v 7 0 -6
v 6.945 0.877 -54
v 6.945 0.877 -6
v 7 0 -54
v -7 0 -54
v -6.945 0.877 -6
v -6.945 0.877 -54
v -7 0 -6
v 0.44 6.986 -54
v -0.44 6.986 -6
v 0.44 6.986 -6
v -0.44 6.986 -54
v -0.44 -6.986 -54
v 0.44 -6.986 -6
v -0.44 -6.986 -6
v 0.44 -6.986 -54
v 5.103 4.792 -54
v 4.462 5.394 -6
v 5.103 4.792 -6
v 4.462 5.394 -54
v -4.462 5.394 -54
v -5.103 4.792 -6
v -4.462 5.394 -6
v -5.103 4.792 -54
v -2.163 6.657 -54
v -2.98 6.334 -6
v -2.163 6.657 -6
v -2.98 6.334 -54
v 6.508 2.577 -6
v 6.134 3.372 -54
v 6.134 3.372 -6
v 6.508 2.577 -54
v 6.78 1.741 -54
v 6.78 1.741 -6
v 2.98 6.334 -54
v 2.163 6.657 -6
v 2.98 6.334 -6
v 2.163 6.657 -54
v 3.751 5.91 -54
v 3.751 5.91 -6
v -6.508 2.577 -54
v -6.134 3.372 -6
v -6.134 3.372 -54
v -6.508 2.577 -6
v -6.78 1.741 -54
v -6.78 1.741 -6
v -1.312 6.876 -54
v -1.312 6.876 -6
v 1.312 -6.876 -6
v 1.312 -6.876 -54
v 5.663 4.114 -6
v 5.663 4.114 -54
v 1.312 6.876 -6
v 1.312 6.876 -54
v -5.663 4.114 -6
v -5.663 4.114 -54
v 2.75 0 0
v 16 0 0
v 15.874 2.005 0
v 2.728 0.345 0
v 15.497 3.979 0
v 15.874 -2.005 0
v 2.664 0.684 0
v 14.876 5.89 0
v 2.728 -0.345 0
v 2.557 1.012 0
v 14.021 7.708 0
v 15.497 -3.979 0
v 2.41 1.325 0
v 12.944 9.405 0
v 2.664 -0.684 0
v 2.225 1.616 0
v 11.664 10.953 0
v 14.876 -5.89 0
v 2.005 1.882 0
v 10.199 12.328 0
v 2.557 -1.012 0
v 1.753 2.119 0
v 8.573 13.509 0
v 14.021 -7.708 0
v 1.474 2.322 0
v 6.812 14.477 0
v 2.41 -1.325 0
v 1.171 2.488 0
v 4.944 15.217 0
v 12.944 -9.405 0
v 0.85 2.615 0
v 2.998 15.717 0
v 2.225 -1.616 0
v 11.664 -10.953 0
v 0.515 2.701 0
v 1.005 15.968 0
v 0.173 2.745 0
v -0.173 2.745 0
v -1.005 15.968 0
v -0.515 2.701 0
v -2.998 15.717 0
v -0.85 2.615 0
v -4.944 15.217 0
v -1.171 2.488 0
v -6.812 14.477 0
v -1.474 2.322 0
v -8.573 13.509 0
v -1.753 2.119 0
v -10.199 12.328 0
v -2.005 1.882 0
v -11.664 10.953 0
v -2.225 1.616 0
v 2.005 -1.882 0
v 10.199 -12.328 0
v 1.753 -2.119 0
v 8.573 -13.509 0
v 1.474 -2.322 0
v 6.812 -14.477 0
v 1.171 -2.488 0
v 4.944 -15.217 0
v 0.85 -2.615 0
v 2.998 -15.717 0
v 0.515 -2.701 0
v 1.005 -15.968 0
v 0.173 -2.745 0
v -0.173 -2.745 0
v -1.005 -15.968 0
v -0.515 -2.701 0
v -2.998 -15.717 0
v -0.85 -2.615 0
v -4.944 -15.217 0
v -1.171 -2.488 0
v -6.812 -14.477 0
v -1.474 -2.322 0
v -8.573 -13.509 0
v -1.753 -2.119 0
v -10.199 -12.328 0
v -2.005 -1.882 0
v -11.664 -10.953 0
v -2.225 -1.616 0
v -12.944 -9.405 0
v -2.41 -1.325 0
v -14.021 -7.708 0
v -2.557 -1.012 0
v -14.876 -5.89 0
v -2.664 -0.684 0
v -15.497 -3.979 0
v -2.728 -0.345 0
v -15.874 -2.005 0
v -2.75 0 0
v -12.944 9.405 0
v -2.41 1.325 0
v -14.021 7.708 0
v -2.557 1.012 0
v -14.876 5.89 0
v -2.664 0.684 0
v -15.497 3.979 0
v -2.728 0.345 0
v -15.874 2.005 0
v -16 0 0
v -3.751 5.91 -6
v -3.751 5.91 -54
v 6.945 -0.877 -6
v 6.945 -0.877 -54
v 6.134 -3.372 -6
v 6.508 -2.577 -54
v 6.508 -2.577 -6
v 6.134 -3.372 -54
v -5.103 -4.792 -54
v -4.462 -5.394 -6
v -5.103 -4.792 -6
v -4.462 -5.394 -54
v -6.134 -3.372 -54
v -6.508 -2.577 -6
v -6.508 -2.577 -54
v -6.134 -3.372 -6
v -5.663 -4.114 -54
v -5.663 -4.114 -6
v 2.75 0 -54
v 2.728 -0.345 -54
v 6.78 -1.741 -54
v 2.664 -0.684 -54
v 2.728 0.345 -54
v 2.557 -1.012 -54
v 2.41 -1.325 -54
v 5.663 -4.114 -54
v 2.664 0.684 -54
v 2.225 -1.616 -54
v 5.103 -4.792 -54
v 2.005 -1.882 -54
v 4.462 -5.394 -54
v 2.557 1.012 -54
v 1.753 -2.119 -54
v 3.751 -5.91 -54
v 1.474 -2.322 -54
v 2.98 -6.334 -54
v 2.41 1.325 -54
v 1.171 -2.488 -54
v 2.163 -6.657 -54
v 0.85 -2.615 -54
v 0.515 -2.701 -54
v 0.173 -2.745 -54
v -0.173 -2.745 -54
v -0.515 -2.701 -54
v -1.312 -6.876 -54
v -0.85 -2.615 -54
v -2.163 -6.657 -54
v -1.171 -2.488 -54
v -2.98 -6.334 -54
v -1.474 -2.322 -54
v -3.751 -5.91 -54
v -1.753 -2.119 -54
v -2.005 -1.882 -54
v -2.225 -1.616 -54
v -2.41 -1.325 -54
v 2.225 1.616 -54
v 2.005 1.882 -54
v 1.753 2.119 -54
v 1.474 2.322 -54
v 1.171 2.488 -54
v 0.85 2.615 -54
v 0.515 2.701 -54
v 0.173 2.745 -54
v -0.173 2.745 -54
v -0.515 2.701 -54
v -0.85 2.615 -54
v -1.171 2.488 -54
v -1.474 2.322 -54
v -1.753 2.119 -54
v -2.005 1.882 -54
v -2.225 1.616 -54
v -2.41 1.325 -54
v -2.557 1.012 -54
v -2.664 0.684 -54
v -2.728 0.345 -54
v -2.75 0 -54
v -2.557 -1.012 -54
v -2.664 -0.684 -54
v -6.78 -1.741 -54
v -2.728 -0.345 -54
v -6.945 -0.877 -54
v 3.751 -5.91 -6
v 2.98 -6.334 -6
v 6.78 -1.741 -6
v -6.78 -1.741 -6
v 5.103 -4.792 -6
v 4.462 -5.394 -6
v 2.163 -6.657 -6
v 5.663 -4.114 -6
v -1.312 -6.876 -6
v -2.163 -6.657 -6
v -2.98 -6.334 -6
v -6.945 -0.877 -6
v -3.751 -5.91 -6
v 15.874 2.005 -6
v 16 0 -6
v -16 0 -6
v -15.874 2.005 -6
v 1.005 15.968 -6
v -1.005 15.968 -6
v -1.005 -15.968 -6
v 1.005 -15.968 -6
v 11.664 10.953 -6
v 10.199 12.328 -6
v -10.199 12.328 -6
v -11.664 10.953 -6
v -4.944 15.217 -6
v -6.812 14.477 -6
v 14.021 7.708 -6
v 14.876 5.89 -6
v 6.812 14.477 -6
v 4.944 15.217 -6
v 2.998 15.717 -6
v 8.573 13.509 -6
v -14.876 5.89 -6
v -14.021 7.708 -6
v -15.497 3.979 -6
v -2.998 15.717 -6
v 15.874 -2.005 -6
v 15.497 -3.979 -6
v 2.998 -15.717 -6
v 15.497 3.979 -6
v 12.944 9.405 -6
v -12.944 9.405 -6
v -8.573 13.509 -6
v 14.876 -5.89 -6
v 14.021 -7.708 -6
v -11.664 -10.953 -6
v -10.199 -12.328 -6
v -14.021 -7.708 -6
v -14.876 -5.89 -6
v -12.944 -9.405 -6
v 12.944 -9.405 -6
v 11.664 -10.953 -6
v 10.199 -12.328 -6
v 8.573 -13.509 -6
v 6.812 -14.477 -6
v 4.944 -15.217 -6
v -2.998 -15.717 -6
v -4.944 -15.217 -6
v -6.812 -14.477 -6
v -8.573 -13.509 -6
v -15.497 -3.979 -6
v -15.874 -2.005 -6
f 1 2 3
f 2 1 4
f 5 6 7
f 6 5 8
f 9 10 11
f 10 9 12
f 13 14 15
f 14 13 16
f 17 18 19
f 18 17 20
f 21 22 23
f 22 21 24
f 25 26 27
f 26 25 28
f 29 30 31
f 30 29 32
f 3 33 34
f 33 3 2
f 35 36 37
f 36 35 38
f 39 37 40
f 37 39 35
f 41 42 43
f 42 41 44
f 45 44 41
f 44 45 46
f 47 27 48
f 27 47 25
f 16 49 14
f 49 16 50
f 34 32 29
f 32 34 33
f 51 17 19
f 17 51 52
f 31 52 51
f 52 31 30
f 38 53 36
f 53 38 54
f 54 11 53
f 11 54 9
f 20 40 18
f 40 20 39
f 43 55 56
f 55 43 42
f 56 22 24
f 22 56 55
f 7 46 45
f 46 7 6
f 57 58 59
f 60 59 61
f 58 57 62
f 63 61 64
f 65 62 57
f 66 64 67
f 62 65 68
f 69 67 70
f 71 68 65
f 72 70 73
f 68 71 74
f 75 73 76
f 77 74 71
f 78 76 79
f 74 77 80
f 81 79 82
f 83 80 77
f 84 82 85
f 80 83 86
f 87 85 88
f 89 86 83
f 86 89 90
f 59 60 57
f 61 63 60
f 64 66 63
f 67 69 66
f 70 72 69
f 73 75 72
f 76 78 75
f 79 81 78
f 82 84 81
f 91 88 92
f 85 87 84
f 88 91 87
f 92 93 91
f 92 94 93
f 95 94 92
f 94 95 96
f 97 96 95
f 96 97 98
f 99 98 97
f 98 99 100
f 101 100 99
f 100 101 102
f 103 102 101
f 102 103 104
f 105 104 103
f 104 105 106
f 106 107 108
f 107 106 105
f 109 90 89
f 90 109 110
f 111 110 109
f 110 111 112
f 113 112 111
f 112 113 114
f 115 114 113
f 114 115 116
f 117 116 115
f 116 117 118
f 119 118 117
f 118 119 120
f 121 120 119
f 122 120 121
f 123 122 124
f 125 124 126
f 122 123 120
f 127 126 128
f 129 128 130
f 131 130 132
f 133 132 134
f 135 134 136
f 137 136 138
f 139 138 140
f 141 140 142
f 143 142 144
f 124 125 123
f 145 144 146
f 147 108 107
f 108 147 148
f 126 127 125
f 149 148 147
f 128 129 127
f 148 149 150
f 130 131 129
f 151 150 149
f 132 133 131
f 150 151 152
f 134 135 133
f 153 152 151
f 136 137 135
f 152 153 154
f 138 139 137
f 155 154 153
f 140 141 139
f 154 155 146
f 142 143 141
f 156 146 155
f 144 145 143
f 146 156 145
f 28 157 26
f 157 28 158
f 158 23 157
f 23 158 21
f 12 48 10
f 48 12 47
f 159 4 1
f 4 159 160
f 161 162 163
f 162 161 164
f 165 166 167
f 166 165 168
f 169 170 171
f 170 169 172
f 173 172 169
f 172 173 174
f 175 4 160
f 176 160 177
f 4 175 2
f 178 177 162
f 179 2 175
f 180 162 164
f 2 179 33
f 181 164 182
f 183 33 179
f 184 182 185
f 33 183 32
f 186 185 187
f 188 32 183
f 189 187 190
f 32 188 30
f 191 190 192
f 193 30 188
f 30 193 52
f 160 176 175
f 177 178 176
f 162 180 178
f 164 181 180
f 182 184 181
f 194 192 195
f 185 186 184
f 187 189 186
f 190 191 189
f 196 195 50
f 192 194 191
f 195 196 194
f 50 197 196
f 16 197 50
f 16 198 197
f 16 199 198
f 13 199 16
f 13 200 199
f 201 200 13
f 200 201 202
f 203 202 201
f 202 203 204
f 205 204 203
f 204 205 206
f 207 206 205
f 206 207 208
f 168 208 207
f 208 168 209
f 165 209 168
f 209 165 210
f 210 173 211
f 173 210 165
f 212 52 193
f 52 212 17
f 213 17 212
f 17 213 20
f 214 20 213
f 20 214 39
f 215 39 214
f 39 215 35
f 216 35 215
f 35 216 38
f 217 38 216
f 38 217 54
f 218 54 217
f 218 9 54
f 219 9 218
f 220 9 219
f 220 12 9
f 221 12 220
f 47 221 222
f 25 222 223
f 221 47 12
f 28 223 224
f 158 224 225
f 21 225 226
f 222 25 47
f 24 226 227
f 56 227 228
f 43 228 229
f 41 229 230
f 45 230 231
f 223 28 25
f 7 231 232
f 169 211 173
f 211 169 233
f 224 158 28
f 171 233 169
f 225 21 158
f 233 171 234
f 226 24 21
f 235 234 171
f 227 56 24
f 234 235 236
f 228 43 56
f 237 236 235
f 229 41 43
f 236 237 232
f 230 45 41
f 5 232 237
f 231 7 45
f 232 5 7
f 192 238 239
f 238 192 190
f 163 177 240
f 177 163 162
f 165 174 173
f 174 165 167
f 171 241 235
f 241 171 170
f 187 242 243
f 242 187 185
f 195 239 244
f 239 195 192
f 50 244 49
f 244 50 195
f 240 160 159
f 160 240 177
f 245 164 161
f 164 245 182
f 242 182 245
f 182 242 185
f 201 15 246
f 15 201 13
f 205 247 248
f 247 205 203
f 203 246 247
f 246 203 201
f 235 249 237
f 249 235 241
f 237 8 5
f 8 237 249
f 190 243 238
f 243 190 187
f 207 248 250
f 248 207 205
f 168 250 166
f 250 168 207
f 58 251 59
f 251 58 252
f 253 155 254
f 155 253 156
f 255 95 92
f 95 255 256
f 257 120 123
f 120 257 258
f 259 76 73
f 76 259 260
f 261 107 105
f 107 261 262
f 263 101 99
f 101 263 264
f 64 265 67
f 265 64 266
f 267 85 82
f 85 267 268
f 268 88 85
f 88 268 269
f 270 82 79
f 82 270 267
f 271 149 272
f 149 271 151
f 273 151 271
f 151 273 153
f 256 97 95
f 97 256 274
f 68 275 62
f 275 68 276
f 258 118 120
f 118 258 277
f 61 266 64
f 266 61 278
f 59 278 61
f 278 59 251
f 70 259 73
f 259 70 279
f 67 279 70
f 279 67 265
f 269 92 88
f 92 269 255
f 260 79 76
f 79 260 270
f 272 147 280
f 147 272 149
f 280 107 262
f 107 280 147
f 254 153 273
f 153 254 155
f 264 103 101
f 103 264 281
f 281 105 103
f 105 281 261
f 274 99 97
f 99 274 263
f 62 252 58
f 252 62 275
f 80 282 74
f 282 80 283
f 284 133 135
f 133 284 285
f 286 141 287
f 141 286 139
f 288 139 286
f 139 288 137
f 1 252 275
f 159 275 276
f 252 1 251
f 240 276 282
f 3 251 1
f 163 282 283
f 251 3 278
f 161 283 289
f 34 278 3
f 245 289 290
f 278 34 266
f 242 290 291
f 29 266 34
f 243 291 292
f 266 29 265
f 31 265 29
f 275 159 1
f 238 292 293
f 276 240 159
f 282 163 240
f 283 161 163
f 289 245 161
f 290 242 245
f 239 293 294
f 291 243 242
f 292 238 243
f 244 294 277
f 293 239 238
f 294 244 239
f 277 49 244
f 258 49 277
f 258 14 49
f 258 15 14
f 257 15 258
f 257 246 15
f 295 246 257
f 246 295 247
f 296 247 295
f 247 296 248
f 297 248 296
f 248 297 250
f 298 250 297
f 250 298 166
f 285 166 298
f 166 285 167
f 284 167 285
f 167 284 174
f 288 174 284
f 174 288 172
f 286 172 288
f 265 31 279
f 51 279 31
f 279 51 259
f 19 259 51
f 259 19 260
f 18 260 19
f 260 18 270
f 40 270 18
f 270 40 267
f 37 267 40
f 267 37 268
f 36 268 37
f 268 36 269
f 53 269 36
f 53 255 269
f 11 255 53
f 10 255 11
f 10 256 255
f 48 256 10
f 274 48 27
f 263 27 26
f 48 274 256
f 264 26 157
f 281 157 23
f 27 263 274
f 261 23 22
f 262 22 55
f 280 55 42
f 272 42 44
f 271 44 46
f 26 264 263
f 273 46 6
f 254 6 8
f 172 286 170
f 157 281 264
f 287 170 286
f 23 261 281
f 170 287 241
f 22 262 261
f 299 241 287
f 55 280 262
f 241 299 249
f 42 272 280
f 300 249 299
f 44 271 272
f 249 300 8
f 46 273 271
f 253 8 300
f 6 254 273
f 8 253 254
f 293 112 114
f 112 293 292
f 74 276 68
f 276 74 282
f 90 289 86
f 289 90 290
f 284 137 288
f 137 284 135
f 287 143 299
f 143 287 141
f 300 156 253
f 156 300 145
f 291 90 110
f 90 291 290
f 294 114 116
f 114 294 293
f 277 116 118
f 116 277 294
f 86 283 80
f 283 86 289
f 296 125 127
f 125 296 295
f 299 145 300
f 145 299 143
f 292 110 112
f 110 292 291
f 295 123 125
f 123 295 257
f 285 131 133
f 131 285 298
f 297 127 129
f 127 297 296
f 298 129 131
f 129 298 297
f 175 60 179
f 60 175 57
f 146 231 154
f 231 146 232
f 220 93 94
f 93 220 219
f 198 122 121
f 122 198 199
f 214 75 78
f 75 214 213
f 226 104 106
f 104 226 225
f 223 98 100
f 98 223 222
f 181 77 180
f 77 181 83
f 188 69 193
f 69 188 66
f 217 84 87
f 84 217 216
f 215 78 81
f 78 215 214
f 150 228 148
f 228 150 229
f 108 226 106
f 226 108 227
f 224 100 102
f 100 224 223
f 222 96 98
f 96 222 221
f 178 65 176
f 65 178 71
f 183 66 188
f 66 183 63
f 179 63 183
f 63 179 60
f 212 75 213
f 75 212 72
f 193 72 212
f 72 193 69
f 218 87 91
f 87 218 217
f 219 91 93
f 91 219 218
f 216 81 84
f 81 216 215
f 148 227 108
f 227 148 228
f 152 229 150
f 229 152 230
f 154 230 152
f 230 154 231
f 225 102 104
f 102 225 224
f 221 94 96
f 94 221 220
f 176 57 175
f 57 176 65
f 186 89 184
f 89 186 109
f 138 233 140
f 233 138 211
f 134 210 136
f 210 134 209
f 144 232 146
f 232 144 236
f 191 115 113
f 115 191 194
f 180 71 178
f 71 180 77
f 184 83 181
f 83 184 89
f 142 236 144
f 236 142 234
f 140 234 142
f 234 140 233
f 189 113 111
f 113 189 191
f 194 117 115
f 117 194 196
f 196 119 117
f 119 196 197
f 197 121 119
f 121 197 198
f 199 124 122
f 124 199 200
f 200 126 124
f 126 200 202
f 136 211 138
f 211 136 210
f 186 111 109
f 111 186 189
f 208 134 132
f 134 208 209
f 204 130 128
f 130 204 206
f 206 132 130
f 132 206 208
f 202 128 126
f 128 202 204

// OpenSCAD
$fn = 50;


difference() {
	union() {
		translate(v = [0, 0, -54.0000000000]) {
			cylinder(h = 54, r = 7.0000000000);
		}
		translate(v = [0, 0, -6.0000000000]) {
			cylinder(h = 6, r = 16.0000000000);
		}
	}
	union() {
		#translate(v = [0, 0, -54]) {
			cylinder(h = 54, r = 2.7500000000);
		}
	}
}
